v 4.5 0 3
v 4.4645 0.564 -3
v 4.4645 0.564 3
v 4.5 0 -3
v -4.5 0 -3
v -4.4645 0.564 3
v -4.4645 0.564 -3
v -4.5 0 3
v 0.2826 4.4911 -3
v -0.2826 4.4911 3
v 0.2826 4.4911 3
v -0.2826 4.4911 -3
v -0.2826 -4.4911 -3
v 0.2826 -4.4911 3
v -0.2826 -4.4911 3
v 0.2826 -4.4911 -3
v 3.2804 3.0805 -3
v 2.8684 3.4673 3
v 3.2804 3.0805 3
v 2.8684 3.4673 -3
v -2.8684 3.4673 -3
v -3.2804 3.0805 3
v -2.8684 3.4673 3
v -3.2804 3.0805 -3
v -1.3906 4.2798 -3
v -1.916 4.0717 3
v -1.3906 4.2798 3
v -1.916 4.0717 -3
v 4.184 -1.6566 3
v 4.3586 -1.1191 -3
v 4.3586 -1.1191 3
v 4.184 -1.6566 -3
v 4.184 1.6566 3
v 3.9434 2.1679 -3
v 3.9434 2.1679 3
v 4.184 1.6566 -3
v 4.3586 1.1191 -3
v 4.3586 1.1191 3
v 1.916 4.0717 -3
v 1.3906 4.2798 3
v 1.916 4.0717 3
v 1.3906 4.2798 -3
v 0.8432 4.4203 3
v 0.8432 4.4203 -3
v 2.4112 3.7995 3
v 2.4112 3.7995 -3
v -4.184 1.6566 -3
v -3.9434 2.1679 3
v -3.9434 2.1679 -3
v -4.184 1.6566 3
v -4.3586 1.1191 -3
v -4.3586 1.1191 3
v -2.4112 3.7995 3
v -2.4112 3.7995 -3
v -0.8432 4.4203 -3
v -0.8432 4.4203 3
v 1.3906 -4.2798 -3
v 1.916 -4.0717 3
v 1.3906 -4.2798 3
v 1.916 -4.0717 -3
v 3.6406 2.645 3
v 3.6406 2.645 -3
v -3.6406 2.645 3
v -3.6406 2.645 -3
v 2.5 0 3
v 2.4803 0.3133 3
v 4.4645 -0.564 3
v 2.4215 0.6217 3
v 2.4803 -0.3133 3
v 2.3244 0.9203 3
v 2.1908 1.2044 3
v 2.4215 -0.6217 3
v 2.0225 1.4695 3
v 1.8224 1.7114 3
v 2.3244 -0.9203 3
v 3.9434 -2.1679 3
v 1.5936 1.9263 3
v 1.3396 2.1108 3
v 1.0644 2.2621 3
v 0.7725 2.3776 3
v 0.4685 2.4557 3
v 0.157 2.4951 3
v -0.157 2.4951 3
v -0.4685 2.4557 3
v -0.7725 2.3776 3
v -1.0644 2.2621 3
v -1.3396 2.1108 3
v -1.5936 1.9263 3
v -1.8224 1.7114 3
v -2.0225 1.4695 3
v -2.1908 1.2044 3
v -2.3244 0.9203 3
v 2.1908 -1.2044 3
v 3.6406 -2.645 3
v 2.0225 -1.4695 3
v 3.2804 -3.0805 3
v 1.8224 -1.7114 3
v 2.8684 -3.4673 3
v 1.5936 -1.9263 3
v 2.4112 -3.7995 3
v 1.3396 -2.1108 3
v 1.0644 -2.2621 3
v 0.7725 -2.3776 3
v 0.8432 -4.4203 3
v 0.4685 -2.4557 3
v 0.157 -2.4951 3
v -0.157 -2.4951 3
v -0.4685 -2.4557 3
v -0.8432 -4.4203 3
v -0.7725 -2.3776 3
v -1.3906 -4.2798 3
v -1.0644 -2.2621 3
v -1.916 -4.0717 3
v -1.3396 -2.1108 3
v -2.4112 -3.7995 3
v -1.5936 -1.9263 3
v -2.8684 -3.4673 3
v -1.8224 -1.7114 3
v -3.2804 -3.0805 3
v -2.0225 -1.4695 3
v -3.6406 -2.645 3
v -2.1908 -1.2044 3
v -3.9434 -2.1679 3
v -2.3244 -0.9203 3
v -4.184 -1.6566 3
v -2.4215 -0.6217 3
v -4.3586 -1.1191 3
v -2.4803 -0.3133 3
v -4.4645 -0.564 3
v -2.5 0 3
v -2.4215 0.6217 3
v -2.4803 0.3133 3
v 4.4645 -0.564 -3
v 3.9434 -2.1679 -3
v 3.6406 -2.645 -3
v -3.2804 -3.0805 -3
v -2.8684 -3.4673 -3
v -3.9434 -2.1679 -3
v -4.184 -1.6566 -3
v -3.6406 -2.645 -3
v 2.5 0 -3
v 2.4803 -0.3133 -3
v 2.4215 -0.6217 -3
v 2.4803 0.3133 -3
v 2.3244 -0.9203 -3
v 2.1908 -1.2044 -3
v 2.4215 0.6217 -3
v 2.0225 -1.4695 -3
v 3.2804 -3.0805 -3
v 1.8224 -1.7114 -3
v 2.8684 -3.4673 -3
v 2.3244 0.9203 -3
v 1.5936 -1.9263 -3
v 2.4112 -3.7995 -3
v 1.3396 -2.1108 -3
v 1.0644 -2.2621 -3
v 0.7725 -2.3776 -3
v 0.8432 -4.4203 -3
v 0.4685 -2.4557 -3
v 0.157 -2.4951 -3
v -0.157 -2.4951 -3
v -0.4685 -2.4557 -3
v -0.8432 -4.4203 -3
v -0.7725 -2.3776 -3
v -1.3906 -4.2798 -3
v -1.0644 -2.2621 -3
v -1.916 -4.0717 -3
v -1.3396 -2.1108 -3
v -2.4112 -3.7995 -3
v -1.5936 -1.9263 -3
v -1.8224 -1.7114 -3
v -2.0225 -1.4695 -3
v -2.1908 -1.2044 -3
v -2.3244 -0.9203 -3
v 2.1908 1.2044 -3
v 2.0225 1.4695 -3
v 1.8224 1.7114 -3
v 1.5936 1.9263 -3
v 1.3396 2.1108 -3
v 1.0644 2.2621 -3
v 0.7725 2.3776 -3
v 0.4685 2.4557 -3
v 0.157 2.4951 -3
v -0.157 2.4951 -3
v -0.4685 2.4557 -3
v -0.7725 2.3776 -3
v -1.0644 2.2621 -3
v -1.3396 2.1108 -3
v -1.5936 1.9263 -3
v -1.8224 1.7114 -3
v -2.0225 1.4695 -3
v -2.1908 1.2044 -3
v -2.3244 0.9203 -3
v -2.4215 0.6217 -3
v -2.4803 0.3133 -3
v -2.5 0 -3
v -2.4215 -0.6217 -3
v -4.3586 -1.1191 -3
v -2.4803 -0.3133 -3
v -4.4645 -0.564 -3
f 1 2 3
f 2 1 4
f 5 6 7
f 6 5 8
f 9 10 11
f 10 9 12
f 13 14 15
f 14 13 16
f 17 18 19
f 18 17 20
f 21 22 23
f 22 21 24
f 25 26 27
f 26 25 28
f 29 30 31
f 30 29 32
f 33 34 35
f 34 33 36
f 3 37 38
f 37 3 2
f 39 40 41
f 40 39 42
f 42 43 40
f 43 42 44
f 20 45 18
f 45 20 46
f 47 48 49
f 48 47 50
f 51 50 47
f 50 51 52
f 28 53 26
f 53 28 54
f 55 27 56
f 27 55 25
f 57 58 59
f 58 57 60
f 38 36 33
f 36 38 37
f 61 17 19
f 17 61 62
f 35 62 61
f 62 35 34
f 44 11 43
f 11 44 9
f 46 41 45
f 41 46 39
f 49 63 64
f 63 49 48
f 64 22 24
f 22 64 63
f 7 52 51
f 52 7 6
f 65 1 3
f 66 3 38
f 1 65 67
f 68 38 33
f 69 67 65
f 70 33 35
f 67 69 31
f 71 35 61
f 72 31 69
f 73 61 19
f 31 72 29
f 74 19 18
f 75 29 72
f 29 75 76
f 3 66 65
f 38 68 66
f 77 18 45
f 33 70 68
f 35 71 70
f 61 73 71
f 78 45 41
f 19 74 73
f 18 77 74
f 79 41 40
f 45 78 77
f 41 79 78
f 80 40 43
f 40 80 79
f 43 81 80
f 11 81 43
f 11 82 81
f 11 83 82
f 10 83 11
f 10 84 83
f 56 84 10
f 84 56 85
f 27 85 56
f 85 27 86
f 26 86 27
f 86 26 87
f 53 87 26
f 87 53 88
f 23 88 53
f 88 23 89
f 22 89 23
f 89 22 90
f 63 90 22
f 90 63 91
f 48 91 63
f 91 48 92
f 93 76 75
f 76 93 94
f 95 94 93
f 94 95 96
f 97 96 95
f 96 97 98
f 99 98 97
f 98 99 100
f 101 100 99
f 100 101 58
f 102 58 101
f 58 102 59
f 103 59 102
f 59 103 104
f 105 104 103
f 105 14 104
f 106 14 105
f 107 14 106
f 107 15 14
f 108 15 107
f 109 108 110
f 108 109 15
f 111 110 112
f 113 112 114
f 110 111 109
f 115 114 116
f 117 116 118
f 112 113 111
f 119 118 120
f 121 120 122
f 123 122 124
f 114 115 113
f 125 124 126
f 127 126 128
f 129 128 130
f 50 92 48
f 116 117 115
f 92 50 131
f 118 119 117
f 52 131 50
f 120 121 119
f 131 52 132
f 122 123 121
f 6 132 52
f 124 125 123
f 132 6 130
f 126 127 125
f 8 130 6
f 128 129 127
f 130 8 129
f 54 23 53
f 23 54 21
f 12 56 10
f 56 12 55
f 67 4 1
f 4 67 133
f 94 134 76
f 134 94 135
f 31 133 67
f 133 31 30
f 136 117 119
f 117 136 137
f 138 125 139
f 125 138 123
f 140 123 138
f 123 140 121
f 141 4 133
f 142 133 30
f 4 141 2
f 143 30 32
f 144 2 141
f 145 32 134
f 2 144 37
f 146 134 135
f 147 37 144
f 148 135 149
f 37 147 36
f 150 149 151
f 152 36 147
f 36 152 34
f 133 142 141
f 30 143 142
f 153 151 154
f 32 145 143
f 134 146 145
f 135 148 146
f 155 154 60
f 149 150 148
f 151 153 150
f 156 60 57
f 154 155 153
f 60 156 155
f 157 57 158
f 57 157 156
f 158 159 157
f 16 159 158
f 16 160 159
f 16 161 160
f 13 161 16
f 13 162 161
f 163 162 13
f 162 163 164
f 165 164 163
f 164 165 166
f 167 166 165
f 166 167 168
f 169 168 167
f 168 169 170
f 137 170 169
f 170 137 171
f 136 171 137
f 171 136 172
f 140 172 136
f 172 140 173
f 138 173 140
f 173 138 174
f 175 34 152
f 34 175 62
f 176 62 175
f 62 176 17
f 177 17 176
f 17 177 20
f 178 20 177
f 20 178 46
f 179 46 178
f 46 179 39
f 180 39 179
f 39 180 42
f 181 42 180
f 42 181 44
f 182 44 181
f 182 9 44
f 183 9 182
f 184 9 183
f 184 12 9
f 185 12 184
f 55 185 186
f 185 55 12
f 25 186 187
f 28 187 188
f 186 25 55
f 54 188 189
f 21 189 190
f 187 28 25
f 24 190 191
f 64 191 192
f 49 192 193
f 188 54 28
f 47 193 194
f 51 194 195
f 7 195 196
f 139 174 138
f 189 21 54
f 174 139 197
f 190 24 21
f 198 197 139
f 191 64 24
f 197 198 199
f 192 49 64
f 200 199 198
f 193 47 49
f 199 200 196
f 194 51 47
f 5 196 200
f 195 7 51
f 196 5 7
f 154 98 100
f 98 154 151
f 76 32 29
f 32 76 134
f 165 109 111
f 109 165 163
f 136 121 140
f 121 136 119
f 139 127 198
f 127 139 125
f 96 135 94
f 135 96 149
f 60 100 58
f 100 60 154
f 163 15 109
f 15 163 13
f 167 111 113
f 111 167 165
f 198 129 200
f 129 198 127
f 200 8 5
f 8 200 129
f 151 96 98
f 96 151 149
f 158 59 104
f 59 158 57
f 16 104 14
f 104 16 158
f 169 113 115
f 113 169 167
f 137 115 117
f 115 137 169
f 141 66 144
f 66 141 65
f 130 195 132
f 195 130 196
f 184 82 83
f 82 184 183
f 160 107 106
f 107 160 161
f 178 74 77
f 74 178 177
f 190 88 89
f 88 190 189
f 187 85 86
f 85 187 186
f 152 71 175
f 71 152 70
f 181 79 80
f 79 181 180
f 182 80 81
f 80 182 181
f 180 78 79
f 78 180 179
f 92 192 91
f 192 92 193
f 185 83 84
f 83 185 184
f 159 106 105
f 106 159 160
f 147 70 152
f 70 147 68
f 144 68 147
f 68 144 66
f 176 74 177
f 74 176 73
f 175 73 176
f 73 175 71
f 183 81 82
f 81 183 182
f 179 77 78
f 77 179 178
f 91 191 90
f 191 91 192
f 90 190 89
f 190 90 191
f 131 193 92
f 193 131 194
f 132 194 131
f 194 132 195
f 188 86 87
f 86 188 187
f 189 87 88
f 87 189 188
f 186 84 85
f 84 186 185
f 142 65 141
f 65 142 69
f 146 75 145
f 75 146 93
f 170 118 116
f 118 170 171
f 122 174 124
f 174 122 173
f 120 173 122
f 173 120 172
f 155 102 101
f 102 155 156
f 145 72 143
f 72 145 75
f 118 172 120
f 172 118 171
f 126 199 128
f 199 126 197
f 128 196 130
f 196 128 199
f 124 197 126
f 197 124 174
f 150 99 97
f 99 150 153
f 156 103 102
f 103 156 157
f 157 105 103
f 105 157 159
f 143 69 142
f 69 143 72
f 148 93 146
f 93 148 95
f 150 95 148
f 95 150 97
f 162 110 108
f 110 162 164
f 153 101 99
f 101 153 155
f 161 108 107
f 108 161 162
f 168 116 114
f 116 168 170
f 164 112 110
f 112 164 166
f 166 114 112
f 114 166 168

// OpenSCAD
$fn = 50;


difference() {
	union() {
		translate(v = [0, 0, -3.0000000000]) {
			cylinder(h = 6, r = 4.5000000000);
		}
	}
	union() {
		translate(v = [0, 0, -100.0000000000]) {
			cylinder(h = 200, r = 2.5000000000);
		}
	}
}
